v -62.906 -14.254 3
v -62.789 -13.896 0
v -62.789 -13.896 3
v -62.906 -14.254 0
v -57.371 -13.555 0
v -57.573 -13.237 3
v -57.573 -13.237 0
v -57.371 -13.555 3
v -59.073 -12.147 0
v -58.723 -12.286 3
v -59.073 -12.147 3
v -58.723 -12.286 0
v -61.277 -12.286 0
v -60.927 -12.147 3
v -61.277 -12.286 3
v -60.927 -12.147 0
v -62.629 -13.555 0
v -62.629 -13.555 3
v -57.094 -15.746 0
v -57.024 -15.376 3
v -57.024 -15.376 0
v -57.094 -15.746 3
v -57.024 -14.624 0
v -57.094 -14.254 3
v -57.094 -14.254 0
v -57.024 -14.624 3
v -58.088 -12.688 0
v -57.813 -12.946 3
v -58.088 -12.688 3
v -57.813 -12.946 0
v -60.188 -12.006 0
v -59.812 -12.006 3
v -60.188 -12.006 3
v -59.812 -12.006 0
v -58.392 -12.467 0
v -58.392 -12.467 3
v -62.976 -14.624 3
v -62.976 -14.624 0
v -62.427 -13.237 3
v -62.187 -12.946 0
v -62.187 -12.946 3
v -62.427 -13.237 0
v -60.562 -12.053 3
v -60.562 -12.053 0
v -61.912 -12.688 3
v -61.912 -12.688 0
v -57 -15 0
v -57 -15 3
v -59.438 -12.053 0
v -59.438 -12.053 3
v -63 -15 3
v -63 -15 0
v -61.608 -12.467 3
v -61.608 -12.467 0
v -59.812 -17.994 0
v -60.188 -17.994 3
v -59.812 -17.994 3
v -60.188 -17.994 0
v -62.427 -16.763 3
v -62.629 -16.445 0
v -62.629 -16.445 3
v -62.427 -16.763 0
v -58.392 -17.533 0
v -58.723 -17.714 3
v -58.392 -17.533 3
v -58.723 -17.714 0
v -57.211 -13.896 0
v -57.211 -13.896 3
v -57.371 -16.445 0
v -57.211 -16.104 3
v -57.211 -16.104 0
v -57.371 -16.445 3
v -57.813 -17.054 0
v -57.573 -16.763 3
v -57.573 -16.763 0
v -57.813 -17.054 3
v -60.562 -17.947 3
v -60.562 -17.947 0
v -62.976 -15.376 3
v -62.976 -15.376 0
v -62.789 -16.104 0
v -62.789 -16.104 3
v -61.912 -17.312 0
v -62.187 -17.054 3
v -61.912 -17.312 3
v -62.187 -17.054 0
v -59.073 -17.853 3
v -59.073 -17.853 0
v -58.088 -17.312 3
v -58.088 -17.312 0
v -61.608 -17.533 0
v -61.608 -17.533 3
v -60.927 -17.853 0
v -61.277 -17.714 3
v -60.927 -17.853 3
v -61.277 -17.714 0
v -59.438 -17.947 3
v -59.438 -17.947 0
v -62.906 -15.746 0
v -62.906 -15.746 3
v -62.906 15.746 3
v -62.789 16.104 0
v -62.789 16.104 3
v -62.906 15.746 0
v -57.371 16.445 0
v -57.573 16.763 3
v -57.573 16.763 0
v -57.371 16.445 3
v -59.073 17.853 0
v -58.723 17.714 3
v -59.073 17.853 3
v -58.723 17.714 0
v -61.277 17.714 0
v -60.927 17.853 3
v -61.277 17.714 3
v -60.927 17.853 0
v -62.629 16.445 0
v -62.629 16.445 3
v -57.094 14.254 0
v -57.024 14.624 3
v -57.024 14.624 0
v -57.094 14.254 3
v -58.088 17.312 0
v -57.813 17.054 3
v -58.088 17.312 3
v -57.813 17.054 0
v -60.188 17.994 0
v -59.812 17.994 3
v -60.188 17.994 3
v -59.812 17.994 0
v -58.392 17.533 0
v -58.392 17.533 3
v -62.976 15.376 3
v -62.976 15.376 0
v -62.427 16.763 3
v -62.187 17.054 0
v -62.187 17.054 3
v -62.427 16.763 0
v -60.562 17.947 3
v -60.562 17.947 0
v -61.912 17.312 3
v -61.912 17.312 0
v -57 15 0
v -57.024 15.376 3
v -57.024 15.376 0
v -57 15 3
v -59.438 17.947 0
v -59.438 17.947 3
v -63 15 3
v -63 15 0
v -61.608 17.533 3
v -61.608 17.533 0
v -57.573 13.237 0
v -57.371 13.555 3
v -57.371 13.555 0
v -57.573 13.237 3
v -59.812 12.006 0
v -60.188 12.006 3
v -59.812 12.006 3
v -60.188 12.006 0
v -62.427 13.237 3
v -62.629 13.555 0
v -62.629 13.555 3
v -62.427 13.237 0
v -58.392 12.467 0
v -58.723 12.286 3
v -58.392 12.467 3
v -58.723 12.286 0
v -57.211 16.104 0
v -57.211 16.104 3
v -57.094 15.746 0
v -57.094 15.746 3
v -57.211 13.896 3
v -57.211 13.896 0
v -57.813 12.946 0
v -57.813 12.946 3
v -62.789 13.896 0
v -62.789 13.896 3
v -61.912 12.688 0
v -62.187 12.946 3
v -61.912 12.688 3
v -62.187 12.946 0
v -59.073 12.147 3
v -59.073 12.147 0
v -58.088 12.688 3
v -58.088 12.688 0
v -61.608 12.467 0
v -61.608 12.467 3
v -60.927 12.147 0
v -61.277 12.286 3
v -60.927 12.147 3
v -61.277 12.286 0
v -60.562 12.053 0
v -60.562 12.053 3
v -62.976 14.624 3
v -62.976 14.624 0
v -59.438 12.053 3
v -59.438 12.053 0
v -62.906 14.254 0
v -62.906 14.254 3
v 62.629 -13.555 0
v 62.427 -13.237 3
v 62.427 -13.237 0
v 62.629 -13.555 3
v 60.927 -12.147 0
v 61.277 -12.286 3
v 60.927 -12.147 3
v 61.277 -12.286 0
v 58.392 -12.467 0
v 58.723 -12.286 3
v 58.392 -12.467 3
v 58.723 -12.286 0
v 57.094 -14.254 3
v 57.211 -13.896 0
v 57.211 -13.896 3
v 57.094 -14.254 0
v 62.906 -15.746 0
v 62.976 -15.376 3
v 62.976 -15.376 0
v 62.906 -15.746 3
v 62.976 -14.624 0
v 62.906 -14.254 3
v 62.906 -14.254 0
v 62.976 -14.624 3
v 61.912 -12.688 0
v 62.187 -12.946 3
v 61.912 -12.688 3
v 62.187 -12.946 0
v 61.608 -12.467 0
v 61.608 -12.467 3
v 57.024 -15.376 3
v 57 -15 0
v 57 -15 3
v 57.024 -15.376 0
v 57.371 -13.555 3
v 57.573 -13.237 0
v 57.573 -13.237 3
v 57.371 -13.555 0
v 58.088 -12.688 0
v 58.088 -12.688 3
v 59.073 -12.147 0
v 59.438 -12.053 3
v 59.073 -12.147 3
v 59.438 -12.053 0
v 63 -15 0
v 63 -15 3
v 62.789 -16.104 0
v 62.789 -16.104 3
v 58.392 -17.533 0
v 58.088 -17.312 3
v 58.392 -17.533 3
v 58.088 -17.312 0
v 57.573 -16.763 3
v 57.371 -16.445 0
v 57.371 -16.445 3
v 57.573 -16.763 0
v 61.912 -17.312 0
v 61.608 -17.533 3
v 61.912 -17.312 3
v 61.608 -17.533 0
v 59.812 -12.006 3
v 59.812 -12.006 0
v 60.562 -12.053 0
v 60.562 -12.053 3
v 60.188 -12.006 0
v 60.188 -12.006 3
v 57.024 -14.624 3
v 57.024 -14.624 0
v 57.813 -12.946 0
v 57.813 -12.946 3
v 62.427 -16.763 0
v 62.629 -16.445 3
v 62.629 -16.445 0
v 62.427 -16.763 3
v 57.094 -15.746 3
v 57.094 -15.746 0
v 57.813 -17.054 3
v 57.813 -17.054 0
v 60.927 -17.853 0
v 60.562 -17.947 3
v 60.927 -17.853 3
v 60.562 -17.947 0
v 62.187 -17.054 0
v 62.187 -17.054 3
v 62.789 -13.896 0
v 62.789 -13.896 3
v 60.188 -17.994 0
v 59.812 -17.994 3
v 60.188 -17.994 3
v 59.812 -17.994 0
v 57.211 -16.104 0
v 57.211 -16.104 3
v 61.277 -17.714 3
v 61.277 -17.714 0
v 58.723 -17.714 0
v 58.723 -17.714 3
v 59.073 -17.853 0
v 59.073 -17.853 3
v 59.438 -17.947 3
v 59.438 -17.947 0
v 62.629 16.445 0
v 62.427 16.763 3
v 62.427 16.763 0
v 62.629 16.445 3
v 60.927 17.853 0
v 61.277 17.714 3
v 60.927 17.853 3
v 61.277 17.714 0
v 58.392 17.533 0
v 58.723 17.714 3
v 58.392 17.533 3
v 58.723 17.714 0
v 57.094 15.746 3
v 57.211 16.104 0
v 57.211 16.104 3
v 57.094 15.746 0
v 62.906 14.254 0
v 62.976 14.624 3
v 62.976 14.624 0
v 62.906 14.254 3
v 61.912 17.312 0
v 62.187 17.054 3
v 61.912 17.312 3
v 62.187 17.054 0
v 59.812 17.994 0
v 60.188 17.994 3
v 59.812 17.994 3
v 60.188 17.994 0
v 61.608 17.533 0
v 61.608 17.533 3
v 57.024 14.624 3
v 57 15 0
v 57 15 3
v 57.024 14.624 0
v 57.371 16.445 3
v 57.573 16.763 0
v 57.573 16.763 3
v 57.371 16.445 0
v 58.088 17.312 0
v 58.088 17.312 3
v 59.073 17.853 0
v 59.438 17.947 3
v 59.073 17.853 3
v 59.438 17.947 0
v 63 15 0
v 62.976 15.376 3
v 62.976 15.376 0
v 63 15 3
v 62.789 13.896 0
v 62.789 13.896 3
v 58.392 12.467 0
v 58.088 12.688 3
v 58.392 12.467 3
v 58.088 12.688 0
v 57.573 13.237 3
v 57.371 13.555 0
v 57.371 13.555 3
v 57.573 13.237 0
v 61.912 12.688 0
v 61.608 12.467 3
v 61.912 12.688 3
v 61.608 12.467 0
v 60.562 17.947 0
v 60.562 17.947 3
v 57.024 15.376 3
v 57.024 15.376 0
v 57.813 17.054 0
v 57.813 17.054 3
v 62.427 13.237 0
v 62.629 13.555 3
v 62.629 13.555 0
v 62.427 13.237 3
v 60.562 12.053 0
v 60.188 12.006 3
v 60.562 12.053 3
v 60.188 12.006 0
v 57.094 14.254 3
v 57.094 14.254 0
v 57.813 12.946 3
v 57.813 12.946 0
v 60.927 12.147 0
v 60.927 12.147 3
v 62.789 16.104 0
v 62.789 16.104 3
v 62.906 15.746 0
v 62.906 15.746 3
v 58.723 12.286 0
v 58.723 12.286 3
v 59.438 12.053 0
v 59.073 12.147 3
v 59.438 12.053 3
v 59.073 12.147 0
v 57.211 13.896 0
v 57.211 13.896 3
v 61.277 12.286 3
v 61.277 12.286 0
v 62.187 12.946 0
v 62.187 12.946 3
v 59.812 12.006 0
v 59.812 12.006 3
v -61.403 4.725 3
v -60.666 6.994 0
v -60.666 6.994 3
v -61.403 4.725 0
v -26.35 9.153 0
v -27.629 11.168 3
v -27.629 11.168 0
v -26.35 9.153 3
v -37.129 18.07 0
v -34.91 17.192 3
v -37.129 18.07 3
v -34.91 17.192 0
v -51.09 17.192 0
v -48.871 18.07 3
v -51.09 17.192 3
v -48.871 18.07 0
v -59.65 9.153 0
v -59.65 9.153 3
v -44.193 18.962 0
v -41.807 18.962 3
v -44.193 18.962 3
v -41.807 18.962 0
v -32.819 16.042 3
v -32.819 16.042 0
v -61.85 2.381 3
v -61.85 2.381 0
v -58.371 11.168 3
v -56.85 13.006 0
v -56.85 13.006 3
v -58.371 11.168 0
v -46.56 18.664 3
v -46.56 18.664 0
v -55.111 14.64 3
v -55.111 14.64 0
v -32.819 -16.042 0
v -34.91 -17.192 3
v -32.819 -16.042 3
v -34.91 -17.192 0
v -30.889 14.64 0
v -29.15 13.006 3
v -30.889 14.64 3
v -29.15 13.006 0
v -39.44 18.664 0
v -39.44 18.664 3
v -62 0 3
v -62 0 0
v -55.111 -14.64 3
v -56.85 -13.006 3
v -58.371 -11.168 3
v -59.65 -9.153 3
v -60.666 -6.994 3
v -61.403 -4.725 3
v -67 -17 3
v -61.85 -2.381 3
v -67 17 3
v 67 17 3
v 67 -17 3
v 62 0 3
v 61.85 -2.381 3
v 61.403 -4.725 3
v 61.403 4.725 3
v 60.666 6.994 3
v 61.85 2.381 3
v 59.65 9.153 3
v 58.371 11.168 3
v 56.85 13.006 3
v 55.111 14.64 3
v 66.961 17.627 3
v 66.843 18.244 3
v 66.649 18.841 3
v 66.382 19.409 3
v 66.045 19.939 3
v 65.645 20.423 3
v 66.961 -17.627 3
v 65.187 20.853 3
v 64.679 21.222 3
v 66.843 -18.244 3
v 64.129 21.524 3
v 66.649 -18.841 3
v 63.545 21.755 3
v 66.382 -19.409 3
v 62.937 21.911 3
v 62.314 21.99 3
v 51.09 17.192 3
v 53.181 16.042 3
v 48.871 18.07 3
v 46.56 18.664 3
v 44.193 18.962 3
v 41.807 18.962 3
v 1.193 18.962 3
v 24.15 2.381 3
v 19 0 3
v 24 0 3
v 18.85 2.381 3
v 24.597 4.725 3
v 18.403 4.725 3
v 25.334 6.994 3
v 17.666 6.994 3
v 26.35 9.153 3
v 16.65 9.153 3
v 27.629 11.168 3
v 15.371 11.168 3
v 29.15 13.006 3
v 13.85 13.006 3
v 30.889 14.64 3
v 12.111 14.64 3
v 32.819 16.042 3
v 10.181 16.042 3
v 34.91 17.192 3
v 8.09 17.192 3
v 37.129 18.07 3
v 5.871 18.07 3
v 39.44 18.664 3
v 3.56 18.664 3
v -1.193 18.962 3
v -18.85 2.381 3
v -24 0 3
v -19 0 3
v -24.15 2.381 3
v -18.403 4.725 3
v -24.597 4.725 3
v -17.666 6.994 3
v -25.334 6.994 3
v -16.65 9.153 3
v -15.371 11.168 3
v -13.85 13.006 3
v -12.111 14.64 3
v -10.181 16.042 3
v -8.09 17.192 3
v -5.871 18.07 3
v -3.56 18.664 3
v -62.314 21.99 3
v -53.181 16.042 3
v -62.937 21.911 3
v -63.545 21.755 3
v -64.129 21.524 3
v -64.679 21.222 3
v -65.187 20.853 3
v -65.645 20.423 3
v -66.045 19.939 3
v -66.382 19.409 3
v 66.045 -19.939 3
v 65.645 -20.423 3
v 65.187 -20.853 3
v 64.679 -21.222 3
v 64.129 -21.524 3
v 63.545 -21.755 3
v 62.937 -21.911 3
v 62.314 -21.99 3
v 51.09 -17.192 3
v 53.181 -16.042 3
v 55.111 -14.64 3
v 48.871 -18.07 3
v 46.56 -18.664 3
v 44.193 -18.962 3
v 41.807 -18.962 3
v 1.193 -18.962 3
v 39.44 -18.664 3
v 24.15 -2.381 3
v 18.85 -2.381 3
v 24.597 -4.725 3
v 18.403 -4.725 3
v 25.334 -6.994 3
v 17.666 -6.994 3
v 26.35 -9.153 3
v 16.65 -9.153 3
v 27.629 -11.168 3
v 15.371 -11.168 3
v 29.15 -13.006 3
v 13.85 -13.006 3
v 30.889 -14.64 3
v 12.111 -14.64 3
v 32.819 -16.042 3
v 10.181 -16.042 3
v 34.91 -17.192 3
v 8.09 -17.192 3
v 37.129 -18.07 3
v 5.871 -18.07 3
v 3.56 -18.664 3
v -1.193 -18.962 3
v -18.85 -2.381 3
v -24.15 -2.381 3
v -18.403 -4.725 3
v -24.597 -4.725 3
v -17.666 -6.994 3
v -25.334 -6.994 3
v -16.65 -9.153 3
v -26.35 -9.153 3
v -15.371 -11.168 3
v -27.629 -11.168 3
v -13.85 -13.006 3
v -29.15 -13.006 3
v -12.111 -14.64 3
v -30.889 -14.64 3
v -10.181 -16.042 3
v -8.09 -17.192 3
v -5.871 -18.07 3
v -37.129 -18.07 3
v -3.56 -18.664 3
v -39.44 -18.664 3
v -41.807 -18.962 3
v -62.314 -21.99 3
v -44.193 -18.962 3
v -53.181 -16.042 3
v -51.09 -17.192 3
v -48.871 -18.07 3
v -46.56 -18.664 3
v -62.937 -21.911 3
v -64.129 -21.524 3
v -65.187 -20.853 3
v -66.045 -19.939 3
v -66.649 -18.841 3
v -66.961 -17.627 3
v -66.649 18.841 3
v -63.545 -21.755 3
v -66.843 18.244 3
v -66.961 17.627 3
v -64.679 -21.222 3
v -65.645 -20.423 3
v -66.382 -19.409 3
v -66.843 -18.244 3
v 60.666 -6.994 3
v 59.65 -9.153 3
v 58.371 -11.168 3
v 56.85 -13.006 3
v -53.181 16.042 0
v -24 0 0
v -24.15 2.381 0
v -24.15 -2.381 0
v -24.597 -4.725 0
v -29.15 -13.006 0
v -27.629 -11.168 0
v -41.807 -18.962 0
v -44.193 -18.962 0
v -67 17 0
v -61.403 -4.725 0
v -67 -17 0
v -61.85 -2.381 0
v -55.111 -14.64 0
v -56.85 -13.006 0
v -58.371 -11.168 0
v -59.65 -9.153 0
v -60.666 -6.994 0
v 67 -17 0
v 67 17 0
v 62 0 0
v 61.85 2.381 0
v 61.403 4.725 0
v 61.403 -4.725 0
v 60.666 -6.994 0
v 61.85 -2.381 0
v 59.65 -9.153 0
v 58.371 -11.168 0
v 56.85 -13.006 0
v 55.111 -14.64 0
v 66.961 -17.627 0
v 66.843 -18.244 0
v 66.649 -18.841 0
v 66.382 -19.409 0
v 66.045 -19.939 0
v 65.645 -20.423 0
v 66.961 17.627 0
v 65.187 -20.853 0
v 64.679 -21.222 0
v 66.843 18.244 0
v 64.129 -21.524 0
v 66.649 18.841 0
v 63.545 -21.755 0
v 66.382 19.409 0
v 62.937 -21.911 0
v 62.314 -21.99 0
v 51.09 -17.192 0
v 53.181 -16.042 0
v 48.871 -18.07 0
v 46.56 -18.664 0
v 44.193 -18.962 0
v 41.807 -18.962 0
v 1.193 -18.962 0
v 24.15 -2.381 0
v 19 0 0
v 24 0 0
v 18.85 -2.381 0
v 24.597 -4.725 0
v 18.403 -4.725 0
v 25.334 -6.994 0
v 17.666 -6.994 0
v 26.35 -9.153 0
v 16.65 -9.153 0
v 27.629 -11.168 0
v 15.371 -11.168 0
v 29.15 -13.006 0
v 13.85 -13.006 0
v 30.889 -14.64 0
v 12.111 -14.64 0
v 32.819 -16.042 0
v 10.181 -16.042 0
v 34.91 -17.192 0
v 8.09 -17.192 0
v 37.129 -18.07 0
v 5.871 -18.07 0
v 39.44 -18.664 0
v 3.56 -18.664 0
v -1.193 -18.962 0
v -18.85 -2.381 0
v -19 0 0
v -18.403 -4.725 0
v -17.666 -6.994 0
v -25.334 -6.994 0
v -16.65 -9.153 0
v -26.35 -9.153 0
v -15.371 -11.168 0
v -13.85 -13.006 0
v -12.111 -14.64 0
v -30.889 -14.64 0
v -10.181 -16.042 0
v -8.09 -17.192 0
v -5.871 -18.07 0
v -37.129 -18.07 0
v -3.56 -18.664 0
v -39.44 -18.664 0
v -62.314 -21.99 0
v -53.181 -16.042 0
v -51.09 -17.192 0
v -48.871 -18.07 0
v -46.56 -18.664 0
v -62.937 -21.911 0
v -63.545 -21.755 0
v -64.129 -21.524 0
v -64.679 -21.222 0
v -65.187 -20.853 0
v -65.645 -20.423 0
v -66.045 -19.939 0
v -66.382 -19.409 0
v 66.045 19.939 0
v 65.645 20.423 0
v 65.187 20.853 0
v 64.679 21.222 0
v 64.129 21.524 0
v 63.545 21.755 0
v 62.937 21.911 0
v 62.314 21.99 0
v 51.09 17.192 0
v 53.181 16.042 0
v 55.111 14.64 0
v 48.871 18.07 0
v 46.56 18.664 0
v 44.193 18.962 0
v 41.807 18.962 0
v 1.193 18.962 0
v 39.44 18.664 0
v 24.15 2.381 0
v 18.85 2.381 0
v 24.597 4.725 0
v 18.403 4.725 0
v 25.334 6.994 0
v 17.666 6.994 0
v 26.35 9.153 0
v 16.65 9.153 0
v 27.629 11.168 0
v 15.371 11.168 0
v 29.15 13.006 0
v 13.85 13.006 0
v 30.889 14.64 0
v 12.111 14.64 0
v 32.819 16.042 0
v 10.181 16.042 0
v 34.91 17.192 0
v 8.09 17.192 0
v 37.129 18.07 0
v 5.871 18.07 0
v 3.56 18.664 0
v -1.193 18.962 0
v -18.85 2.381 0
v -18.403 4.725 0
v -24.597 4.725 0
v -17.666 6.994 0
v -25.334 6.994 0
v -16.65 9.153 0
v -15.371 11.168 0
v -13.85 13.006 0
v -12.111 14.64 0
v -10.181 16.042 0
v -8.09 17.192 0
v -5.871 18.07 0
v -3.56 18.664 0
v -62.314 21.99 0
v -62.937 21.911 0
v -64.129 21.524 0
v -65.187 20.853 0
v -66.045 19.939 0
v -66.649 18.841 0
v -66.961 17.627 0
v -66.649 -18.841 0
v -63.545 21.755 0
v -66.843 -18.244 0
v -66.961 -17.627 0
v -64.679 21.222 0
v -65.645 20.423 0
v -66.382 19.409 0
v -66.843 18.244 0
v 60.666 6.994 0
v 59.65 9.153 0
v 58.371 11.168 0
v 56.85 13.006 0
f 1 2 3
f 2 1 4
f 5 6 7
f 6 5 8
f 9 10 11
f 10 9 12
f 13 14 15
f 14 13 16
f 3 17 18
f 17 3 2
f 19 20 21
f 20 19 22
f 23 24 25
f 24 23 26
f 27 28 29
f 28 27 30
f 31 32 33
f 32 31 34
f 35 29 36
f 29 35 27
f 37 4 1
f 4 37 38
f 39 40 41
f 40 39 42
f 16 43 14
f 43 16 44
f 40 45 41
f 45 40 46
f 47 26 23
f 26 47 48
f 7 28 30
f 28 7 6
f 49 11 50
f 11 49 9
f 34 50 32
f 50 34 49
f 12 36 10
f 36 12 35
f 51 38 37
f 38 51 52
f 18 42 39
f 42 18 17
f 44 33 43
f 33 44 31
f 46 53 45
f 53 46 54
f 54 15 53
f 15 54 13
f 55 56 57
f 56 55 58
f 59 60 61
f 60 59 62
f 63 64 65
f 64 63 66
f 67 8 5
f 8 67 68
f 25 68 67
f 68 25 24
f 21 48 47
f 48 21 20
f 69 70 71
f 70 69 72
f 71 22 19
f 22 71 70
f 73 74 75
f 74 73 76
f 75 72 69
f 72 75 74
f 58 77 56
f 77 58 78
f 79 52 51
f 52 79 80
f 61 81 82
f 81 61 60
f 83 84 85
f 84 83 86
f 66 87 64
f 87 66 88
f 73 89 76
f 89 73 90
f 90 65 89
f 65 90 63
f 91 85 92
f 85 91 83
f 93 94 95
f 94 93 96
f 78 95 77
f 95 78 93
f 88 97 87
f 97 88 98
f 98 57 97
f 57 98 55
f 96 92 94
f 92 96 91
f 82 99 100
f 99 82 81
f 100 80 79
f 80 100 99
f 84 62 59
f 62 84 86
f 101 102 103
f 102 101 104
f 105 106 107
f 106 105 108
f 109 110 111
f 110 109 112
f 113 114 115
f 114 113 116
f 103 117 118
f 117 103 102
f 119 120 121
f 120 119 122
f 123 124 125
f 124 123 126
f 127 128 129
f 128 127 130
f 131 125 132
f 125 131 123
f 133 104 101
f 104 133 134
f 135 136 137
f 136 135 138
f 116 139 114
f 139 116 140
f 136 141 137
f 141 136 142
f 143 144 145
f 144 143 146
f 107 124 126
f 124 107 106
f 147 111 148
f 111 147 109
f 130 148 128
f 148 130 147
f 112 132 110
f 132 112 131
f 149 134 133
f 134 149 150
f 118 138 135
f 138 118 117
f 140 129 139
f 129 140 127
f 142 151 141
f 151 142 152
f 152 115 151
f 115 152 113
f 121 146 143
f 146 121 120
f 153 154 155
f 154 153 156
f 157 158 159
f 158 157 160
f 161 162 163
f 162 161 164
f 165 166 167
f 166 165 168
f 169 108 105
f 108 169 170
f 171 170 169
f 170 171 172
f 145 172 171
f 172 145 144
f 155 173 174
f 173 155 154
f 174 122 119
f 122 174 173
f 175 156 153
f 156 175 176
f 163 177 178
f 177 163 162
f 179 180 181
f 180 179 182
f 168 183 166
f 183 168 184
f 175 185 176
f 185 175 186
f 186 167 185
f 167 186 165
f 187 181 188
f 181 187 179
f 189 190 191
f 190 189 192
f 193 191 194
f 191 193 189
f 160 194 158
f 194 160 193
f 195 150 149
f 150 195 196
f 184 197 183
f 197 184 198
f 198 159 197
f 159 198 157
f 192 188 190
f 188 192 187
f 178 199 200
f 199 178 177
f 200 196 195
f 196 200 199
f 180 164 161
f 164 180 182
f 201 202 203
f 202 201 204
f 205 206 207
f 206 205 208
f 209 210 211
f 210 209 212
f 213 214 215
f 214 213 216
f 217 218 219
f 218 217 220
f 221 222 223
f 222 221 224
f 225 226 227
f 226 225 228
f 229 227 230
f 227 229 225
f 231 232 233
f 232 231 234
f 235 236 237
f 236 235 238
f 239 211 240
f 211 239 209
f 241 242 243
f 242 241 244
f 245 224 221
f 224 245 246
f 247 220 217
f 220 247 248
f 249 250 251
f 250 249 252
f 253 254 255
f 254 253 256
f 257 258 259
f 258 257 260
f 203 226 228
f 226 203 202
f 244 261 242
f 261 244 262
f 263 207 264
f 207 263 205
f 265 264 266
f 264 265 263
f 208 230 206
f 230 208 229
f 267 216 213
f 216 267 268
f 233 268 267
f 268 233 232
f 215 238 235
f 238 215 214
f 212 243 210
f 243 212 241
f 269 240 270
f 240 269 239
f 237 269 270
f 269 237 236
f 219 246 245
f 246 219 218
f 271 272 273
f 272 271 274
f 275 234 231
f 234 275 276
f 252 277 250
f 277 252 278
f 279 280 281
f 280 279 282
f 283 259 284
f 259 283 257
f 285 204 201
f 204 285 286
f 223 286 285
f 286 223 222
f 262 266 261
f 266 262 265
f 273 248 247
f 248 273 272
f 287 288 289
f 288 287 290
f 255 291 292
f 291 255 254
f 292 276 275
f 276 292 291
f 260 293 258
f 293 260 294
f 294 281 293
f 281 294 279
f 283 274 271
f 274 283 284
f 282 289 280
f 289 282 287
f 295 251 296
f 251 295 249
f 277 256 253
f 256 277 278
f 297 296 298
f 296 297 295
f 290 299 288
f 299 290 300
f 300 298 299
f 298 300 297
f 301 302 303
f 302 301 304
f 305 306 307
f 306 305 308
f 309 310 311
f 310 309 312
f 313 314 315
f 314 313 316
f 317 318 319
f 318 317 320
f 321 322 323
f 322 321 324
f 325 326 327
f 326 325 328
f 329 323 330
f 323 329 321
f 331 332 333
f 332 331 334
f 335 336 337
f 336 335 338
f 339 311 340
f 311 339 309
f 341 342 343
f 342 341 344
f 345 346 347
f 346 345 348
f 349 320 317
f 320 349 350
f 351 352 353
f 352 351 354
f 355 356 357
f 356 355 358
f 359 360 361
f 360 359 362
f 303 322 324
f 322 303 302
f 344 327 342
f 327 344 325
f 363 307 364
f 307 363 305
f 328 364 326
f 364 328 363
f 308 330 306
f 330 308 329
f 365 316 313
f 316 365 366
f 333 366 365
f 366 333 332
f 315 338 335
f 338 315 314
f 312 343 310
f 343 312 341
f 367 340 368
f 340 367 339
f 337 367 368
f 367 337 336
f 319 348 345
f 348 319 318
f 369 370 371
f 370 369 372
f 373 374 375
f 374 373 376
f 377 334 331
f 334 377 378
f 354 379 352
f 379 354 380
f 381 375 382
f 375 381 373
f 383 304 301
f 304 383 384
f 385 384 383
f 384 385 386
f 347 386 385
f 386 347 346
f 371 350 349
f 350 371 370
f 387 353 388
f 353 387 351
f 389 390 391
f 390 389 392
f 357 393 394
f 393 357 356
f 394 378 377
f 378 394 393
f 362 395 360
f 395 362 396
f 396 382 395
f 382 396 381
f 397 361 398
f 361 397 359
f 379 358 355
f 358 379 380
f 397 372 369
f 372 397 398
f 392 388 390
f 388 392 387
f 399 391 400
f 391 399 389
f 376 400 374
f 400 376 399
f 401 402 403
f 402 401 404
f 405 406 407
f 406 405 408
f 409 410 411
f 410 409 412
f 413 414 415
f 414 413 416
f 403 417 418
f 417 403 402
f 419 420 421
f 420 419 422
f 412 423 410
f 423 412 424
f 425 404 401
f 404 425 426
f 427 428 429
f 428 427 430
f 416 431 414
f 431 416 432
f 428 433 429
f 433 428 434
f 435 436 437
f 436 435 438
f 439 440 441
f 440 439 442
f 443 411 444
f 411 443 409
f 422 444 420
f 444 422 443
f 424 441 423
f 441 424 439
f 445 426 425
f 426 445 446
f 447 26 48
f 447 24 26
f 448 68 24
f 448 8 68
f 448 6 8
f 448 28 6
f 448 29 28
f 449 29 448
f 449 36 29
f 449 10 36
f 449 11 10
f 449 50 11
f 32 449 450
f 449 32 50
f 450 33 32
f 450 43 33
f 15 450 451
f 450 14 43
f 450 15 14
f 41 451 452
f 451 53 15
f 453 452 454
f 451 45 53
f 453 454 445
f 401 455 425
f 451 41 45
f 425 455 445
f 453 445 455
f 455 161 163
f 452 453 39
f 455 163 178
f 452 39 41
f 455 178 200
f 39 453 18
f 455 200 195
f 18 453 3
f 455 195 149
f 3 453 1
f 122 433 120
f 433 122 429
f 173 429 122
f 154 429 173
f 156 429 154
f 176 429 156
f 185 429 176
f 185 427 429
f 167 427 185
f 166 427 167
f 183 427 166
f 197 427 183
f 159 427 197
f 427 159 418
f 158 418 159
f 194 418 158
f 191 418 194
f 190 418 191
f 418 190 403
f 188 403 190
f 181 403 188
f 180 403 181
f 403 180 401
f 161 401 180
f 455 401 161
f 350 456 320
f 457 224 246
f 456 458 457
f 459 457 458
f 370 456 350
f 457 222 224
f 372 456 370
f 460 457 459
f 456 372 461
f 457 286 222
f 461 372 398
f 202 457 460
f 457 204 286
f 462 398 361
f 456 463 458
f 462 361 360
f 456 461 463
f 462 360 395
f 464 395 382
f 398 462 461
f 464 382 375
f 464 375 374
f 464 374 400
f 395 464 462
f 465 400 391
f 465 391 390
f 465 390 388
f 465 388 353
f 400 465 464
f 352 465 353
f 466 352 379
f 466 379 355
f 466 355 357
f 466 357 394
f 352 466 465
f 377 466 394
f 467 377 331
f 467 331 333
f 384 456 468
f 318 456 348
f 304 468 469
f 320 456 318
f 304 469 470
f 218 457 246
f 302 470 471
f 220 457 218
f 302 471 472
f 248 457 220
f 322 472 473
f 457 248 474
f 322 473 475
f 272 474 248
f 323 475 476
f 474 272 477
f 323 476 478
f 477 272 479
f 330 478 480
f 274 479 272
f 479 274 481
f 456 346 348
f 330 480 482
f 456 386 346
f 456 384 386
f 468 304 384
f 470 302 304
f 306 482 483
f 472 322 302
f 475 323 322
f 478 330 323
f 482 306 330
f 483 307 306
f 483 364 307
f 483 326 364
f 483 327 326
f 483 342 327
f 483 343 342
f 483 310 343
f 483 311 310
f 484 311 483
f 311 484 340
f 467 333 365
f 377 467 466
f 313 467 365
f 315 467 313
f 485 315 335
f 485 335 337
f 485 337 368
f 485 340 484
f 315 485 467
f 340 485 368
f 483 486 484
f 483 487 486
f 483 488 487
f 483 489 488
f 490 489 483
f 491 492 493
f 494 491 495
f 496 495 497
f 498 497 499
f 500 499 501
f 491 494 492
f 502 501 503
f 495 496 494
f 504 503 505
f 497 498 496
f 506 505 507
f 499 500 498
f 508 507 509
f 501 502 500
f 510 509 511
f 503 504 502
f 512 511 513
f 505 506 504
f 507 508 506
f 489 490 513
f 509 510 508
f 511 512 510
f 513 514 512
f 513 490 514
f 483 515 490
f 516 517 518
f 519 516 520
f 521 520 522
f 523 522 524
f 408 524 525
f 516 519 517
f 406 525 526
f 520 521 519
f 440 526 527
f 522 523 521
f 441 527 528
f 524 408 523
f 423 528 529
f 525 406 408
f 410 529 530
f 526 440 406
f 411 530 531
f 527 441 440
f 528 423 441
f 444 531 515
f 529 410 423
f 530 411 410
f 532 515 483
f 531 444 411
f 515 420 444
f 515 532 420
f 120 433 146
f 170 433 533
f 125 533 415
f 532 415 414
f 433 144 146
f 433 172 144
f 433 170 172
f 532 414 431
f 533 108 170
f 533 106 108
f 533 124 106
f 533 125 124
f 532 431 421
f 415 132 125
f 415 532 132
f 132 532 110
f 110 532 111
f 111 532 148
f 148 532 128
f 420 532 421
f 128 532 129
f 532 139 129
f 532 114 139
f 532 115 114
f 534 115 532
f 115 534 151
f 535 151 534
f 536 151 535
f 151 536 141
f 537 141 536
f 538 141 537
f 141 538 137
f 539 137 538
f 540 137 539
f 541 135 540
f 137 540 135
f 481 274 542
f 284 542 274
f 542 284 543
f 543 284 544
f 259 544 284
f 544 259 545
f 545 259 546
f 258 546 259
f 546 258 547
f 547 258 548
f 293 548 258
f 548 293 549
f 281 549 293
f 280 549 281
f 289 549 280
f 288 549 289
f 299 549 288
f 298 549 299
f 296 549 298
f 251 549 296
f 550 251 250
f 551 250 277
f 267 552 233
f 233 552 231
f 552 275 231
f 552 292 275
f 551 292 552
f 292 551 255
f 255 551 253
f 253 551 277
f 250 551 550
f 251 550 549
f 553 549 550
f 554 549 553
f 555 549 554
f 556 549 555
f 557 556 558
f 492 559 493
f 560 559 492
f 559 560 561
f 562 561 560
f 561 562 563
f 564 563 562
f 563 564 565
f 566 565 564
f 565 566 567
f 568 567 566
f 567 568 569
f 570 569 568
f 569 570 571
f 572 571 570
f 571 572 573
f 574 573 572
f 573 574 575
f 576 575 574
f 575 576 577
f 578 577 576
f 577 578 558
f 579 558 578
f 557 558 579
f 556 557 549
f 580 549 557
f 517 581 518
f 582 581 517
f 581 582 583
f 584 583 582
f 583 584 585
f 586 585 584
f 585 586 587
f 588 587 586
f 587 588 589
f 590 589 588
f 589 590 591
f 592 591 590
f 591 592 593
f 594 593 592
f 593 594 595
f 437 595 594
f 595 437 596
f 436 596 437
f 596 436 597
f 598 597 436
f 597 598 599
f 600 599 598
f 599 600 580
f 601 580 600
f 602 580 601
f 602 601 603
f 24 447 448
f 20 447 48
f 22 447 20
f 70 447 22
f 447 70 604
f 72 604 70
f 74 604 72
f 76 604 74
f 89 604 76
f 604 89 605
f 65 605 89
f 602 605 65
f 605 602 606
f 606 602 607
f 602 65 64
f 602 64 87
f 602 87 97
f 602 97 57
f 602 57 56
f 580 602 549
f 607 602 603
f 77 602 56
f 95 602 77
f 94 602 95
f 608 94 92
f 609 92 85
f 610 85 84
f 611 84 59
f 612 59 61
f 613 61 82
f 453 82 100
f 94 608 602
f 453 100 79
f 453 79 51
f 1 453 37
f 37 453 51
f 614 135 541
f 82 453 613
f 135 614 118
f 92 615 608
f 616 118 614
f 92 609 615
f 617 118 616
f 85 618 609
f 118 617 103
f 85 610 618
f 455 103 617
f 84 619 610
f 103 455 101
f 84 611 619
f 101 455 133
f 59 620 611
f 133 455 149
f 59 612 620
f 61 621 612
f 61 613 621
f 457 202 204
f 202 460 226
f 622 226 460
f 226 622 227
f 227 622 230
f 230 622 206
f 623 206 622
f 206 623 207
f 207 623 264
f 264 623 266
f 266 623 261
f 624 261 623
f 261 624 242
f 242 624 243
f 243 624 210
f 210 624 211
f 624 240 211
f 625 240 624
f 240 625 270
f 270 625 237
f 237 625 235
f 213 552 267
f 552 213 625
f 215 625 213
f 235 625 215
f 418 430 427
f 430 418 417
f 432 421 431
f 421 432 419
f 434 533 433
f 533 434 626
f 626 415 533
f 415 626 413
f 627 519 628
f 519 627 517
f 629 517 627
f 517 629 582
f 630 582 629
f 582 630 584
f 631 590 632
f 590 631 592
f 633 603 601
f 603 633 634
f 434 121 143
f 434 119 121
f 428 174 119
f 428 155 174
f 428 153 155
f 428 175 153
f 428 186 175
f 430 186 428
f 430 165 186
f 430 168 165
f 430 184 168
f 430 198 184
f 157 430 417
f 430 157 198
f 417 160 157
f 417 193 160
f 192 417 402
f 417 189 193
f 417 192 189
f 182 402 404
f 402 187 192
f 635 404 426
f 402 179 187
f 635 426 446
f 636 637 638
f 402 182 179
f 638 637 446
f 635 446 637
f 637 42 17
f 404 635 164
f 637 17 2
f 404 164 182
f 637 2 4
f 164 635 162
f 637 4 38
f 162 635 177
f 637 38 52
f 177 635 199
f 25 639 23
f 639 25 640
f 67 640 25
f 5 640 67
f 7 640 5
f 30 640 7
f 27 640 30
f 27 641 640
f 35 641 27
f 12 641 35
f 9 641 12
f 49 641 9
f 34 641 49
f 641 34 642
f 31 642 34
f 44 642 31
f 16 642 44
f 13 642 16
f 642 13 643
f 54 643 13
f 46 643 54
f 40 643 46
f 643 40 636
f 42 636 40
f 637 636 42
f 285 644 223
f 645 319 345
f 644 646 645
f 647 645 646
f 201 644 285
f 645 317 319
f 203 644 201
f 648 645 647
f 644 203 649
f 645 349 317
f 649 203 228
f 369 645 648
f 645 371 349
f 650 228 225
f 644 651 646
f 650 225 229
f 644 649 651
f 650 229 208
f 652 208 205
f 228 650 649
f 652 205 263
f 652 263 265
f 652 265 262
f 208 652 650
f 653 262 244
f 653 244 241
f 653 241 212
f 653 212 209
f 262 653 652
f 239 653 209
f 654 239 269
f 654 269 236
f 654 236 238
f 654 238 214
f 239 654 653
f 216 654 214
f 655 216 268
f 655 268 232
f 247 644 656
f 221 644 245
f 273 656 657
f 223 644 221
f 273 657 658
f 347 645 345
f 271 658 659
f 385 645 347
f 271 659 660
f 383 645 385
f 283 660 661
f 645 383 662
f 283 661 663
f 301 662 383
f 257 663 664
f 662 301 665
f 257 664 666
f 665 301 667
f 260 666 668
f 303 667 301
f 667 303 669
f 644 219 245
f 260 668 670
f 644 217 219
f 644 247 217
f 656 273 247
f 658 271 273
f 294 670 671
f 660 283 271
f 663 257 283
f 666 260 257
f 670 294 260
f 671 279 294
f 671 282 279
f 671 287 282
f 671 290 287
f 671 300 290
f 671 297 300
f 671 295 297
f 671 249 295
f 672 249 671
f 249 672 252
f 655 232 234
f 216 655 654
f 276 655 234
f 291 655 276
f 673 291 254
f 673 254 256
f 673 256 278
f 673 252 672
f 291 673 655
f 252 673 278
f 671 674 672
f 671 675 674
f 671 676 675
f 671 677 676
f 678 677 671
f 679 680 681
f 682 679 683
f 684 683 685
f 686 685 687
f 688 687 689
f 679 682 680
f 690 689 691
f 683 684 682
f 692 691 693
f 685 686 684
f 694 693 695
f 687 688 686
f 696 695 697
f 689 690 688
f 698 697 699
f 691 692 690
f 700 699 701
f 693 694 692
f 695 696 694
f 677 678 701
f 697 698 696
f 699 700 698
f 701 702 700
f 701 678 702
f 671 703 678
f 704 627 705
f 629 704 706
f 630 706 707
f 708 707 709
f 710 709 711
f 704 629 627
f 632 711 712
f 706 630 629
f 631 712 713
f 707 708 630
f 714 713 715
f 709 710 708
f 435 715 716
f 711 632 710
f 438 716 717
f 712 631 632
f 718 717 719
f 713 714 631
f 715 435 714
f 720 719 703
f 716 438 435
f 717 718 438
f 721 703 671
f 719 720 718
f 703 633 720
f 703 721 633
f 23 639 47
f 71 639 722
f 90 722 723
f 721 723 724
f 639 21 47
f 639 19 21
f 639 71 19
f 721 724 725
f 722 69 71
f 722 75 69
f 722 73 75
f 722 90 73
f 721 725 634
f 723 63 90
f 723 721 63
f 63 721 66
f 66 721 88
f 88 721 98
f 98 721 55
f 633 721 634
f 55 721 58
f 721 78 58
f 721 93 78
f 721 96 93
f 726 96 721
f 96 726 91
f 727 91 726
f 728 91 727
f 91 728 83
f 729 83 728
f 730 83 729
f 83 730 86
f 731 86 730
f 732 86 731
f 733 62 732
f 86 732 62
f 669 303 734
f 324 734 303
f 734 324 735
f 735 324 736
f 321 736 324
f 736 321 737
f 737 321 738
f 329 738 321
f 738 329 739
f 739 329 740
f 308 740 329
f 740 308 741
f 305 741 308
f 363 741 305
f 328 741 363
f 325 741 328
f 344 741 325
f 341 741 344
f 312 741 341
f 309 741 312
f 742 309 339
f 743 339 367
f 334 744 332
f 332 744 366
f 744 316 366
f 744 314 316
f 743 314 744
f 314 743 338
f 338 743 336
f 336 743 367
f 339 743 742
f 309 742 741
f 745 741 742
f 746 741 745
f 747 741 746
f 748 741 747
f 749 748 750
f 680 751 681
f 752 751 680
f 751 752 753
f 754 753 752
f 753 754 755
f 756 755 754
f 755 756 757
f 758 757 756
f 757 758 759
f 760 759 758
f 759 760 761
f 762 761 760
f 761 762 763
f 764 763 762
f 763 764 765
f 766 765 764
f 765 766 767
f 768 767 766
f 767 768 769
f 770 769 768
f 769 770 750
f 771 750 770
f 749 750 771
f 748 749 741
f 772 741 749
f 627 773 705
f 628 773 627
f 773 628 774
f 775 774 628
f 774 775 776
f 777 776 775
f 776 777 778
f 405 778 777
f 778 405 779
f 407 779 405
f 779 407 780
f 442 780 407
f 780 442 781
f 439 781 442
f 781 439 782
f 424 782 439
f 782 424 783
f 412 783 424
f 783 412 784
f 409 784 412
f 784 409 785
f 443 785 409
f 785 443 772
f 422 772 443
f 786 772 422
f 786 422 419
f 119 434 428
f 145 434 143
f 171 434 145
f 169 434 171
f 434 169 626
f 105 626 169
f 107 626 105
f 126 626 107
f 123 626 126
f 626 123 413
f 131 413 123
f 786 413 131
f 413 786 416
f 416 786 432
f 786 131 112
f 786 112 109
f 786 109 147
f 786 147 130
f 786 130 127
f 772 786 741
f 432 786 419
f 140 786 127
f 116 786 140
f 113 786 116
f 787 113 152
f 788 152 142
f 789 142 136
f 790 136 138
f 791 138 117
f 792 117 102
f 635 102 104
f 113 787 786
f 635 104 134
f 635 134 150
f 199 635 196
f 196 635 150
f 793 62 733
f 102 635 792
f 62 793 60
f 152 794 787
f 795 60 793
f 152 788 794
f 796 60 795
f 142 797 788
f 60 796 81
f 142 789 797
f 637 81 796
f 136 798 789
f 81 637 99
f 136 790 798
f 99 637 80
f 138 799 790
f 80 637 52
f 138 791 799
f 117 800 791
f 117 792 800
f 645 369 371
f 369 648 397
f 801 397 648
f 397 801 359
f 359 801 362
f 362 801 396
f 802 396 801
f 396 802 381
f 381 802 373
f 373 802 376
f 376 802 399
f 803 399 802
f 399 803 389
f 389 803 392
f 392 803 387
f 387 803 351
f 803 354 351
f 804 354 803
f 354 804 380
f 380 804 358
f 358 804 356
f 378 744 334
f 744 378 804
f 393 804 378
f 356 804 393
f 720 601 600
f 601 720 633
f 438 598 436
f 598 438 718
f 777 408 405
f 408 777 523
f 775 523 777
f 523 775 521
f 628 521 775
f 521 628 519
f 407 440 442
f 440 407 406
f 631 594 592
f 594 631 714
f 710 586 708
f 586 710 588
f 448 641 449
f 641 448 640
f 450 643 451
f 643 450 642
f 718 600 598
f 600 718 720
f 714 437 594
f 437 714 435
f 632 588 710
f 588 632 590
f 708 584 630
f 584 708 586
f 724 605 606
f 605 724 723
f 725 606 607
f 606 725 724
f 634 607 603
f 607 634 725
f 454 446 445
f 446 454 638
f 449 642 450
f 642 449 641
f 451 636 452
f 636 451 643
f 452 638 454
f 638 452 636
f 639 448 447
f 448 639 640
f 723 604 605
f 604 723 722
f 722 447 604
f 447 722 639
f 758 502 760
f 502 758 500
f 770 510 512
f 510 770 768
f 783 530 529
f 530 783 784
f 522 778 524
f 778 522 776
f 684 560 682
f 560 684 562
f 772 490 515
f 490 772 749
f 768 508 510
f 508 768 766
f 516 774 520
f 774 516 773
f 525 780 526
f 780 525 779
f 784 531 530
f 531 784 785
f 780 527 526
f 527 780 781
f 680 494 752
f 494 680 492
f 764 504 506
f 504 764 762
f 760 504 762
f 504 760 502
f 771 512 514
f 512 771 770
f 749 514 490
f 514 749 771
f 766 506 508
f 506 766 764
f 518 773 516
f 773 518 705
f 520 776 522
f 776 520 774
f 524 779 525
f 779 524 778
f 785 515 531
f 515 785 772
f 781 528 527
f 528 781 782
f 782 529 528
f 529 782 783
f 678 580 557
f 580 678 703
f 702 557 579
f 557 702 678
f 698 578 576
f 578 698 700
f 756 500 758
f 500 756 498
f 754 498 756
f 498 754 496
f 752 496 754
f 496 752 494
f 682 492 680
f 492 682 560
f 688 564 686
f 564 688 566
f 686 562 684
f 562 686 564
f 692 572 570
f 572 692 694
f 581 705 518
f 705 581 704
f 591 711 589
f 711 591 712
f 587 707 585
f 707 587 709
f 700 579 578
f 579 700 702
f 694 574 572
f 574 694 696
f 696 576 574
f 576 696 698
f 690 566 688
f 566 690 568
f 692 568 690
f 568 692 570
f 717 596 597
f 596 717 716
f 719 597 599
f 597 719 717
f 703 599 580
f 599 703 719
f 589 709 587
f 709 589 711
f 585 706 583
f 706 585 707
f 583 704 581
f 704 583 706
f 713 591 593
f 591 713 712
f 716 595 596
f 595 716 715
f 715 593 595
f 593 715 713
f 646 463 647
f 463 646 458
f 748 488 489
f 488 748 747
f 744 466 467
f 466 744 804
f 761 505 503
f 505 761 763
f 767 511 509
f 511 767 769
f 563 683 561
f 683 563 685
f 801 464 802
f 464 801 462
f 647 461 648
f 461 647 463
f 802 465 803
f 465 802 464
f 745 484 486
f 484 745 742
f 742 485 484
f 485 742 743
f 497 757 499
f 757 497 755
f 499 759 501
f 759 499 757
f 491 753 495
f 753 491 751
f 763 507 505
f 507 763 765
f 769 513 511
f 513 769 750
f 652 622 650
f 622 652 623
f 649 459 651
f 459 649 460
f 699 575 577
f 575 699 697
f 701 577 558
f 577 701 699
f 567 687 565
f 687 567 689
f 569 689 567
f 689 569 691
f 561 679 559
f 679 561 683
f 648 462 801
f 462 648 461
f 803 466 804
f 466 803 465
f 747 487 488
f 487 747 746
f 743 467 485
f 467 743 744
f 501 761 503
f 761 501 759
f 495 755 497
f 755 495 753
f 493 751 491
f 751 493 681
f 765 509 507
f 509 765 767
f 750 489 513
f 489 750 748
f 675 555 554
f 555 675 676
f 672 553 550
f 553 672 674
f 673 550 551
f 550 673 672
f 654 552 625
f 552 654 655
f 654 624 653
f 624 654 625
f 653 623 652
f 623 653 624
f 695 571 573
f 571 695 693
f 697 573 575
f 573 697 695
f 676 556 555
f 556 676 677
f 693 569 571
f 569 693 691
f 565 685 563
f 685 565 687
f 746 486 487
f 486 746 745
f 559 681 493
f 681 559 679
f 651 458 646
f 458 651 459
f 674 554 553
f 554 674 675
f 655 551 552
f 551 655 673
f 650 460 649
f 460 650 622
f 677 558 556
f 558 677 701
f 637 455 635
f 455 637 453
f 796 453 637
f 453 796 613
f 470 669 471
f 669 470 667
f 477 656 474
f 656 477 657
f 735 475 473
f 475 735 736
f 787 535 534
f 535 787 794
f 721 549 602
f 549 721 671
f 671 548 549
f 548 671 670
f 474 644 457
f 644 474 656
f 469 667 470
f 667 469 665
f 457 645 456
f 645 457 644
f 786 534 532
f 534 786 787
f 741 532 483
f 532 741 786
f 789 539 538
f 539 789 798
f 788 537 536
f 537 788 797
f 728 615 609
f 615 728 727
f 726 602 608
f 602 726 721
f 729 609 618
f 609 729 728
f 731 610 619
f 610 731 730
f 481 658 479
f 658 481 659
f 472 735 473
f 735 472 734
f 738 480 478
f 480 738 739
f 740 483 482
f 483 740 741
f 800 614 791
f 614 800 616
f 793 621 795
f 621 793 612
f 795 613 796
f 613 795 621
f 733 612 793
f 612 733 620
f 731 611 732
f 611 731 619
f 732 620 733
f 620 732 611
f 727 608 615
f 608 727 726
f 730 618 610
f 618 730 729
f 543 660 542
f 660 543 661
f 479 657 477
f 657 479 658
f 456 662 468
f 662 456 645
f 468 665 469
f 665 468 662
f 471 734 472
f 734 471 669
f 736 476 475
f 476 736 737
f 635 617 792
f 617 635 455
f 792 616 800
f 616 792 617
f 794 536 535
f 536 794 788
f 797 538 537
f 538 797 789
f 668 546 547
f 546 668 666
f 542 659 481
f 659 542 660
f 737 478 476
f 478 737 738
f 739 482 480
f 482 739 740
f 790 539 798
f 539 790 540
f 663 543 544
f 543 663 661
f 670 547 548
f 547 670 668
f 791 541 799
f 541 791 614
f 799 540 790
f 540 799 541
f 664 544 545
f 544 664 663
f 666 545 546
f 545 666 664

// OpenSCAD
$fn = 50;


difference() {
	union() {
		hull() {
			translate(v = [-62.0000000000, 17.0000000000, 0]) {
				cylinder(h = 3, r = 5);
			}
			translate(v = [62.0000000000, 17.0000000000, 0]) {
				cylinder(h = 3, r = 5);
			}
			translate(v = [-62.0000000000, -17.0000000000, 0]) {
				cylinder(h = 3, r = 5);
			}
			translate(v = [62.0000000000, -17.0000000000, 0]) {
				cylinder(h = 3, r = 5);
			}
		}
	}
	union() {
		#translate(v = [-60.0000000000, -15.0000000000, -100.0000000000]) {
			cylinder(h = 200, r = 3.0000000000);
		}
		#translate(v = [-60.0000000000, 15.0000000000, -100.0000000000]) {
			cylinder(h = 200, r = 3.0000000000);
		}
		#translate(v = [60.0000000000, -15.0000000000, -100.0000000000]) {
			cylinder(h = 200, r = 3.0000000000);
		}
		#translate(v = [60.0000000000, 15.0000000000, -100.0000000000]) {
			cylinder(h = 200, r = 3.0000000000);
		}
		#translate(v = [-43.0000000000, 0, 0]) {
			cylinder(h = 3, r = 19.0000000000);
		}
		#cylinder(h = 3, r = 19.0000000000);
		#translate(v = [43.0000000000, 0, 0]) {
			cylinder(h = 3, r = 19.0000000000);
		}
	}
}
